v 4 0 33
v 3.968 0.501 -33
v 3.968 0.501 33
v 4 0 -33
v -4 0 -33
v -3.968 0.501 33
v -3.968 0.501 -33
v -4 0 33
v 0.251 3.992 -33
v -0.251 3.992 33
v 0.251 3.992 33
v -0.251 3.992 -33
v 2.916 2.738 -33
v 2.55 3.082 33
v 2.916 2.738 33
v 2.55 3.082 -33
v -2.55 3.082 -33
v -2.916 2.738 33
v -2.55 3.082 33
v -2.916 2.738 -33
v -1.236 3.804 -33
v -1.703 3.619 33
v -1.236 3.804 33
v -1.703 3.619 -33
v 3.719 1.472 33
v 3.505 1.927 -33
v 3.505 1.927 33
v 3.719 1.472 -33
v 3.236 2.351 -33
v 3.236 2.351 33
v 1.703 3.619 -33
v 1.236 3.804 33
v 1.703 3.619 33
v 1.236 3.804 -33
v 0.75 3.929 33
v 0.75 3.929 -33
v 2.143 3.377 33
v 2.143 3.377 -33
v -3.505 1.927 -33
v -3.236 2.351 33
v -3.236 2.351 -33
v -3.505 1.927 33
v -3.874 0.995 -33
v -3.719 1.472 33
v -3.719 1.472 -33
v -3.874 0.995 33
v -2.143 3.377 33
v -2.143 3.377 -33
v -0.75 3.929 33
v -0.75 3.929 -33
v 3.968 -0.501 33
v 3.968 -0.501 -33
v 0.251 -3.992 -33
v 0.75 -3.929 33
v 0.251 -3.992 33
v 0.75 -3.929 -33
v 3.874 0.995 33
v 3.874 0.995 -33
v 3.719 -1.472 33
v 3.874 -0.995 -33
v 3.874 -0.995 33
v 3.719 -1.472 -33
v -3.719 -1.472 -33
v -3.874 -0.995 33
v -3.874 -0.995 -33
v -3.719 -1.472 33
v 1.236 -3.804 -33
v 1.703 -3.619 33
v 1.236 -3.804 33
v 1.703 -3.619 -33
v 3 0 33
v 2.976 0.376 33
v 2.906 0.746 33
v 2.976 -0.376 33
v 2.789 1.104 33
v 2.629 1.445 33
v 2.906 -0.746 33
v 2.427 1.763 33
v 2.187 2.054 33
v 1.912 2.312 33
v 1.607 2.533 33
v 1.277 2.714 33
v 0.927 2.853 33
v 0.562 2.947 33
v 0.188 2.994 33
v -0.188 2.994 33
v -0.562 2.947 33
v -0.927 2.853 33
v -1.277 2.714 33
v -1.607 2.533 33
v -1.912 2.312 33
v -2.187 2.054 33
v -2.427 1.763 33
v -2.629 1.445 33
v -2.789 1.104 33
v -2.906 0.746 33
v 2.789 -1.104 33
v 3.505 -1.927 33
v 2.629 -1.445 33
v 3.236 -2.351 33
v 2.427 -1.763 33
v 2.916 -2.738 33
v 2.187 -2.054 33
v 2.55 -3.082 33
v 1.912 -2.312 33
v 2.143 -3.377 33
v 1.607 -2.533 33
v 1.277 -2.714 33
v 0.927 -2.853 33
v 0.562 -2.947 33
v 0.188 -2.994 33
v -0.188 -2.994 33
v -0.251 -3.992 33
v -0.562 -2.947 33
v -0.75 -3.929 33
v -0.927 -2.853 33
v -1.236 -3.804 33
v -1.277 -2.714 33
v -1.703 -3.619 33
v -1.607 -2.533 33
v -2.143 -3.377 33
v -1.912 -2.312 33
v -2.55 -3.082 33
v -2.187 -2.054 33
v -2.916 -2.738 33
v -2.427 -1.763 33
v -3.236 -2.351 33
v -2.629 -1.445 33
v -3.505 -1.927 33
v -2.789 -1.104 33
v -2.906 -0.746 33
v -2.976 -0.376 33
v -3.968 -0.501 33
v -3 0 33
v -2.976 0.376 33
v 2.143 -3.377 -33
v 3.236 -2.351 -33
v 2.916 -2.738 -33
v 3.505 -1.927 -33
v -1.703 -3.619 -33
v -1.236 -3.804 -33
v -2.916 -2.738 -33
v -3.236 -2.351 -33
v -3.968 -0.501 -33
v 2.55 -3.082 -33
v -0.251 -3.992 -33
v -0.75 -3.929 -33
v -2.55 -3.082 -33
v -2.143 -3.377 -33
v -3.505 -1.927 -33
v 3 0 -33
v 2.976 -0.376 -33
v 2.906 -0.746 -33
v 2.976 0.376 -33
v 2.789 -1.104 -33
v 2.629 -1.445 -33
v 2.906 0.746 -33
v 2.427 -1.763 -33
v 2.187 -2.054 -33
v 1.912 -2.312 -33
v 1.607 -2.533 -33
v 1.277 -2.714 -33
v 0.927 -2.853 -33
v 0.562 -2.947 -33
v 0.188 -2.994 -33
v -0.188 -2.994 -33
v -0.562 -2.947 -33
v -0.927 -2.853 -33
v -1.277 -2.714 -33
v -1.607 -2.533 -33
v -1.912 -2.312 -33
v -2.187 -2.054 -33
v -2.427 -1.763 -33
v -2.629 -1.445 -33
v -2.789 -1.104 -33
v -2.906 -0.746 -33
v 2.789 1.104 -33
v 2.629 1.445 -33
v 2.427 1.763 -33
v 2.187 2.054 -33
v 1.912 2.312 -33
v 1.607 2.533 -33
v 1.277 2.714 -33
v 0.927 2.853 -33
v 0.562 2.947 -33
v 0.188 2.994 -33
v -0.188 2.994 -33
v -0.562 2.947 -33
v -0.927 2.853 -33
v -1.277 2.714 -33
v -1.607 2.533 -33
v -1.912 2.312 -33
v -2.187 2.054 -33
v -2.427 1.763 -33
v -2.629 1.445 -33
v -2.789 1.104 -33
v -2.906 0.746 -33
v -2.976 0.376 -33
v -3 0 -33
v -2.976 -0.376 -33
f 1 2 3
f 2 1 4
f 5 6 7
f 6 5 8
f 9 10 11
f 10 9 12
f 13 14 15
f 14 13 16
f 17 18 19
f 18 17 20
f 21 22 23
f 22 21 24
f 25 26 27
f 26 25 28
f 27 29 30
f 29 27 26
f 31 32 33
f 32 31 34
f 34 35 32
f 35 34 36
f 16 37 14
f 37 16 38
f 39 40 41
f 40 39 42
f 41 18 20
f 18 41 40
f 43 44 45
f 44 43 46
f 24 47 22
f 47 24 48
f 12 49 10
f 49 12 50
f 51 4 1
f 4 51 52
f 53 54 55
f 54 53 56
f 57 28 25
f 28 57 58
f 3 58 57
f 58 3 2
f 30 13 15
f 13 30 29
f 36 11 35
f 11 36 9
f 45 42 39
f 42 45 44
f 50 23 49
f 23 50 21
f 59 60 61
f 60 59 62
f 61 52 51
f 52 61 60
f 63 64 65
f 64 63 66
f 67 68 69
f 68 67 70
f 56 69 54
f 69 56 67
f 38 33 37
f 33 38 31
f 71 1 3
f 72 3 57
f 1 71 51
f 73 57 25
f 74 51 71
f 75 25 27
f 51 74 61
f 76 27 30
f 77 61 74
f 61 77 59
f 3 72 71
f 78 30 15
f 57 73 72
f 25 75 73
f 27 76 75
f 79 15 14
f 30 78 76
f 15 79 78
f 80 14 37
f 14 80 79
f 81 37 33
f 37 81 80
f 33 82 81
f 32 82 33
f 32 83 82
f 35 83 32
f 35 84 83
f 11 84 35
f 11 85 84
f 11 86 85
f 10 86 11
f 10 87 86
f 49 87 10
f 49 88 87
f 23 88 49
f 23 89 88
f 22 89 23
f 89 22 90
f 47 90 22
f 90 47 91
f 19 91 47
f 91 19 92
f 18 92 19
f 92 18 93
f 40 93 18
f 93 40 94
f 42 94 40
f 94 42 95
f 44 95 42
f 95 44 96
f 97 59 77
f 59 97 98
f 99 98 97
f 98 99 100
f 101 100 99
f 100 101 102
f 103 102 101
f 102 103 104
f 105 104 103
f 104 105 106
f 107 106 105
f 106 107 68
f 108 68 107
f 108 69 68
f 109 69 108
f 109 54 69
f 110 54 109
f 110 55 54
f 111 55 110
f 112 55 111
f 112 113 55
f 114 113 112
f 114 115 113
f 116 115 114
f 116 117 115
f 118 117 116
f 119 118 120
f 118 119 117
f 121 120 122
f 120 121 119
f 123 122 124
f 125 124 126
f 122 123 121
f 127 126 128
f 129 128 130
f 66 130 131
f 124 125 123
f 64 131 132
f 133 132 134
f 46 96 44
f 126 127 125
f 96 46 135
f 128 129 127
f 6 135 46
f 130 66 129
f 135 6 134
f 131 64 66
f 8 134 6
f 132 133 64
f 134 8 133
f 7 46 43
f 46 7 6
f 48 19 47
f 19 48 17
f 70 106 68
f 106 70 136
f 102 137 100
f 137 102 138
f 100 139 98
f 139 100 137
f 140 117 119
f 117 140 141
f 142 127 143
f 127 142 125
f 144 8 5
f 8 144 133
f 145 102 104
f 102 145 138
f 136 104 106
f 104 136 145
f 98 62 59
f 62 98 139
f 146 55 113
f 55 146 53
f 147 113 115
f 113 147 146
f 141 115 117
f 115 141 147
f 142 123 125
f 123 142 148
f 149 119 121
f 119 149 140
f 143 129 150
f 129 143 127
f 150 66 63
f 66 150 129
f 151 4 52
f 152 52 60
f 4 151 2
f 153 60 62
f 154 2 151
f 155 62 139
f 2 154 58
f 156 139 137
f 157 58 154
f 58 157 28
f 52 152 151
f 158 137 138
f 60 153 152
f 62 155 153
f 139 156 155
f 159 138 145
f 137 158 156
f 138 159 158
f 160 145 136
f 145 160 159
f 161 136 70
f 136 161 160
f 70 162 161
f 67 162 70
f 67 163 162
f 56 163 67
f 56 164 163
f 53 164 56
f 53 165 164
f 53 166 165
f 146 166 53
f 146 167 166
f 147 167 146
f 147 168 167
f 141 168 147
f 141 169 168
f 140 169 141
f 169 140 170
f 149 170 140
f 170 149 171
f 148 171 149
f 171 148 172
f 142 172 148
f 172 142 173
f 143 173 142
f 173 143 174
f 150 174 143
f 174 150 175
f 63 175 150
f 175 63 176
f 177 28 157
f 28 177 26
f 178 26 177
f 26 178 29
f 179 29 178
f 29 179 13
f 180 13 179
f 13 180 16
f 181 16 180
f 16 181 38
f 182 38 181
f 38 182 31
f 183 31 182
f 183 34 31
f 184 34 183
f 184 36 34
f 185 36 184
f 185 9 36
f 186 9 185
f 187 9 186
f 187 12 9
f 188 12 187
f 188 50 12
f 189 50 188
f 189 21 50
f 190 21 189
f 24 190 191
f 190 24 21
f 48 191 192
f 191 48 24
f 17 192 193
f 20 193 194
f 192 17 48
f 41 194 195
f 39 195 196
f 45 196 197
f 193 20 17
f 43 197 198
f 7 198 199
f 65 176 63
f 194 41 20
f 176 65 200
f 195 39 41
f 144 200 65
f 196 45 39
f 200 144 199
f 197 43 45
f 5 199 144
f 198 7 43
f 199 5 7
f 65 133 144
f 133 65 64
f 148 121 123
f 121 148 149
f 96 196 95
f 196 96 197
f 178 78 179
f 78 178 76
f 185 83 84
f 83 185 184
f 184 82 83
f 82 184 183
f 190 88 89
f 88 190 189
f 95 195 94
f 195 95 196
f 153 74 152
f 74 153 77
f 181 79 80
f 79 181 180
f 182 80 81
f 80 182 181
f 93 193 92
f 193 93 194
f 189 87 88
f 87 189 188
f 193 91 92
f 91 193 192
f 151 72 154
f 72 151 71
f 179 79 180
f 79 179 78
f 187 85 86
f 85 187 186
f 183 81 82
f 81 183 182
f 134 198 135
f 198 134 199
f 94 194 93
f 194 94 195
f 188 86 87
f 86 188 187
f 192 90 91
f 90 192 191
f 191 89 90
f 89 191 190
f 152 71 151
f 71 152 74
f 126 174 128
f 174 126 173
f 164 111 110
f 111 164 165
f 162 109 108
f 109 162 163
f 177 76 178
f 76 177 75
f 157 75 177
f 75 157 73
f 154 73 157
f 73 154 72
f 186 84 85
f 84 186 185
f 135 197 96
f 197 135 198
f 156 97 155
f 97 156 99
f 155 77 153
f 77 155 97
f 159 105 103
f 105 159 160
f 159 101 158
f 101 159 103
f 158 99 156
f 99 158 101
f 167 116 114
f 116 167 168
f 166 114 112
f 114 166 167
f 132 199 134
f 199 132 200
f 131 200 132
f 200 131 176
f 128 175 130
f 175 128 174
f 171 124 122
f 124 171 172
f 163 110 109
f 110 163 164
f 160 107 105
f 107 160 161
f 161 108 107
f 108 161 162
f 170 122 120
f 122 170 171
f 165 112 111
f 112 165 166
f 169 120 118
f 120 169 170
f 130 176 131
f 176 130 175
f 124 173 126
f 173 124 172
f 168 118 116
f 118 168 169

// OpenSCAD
$fn = 50;


difference() {
	union() {
		translate(v = [0, 0, -33.0000000000]) {
			cylinder(h = 66, r = 4.0000000000);
		}
	}
	union() {
		translate(v = [0, 0, -100.0000000000]) {
			cylinder(h = 200, r = 3.0000000000);
		}
	}
}
